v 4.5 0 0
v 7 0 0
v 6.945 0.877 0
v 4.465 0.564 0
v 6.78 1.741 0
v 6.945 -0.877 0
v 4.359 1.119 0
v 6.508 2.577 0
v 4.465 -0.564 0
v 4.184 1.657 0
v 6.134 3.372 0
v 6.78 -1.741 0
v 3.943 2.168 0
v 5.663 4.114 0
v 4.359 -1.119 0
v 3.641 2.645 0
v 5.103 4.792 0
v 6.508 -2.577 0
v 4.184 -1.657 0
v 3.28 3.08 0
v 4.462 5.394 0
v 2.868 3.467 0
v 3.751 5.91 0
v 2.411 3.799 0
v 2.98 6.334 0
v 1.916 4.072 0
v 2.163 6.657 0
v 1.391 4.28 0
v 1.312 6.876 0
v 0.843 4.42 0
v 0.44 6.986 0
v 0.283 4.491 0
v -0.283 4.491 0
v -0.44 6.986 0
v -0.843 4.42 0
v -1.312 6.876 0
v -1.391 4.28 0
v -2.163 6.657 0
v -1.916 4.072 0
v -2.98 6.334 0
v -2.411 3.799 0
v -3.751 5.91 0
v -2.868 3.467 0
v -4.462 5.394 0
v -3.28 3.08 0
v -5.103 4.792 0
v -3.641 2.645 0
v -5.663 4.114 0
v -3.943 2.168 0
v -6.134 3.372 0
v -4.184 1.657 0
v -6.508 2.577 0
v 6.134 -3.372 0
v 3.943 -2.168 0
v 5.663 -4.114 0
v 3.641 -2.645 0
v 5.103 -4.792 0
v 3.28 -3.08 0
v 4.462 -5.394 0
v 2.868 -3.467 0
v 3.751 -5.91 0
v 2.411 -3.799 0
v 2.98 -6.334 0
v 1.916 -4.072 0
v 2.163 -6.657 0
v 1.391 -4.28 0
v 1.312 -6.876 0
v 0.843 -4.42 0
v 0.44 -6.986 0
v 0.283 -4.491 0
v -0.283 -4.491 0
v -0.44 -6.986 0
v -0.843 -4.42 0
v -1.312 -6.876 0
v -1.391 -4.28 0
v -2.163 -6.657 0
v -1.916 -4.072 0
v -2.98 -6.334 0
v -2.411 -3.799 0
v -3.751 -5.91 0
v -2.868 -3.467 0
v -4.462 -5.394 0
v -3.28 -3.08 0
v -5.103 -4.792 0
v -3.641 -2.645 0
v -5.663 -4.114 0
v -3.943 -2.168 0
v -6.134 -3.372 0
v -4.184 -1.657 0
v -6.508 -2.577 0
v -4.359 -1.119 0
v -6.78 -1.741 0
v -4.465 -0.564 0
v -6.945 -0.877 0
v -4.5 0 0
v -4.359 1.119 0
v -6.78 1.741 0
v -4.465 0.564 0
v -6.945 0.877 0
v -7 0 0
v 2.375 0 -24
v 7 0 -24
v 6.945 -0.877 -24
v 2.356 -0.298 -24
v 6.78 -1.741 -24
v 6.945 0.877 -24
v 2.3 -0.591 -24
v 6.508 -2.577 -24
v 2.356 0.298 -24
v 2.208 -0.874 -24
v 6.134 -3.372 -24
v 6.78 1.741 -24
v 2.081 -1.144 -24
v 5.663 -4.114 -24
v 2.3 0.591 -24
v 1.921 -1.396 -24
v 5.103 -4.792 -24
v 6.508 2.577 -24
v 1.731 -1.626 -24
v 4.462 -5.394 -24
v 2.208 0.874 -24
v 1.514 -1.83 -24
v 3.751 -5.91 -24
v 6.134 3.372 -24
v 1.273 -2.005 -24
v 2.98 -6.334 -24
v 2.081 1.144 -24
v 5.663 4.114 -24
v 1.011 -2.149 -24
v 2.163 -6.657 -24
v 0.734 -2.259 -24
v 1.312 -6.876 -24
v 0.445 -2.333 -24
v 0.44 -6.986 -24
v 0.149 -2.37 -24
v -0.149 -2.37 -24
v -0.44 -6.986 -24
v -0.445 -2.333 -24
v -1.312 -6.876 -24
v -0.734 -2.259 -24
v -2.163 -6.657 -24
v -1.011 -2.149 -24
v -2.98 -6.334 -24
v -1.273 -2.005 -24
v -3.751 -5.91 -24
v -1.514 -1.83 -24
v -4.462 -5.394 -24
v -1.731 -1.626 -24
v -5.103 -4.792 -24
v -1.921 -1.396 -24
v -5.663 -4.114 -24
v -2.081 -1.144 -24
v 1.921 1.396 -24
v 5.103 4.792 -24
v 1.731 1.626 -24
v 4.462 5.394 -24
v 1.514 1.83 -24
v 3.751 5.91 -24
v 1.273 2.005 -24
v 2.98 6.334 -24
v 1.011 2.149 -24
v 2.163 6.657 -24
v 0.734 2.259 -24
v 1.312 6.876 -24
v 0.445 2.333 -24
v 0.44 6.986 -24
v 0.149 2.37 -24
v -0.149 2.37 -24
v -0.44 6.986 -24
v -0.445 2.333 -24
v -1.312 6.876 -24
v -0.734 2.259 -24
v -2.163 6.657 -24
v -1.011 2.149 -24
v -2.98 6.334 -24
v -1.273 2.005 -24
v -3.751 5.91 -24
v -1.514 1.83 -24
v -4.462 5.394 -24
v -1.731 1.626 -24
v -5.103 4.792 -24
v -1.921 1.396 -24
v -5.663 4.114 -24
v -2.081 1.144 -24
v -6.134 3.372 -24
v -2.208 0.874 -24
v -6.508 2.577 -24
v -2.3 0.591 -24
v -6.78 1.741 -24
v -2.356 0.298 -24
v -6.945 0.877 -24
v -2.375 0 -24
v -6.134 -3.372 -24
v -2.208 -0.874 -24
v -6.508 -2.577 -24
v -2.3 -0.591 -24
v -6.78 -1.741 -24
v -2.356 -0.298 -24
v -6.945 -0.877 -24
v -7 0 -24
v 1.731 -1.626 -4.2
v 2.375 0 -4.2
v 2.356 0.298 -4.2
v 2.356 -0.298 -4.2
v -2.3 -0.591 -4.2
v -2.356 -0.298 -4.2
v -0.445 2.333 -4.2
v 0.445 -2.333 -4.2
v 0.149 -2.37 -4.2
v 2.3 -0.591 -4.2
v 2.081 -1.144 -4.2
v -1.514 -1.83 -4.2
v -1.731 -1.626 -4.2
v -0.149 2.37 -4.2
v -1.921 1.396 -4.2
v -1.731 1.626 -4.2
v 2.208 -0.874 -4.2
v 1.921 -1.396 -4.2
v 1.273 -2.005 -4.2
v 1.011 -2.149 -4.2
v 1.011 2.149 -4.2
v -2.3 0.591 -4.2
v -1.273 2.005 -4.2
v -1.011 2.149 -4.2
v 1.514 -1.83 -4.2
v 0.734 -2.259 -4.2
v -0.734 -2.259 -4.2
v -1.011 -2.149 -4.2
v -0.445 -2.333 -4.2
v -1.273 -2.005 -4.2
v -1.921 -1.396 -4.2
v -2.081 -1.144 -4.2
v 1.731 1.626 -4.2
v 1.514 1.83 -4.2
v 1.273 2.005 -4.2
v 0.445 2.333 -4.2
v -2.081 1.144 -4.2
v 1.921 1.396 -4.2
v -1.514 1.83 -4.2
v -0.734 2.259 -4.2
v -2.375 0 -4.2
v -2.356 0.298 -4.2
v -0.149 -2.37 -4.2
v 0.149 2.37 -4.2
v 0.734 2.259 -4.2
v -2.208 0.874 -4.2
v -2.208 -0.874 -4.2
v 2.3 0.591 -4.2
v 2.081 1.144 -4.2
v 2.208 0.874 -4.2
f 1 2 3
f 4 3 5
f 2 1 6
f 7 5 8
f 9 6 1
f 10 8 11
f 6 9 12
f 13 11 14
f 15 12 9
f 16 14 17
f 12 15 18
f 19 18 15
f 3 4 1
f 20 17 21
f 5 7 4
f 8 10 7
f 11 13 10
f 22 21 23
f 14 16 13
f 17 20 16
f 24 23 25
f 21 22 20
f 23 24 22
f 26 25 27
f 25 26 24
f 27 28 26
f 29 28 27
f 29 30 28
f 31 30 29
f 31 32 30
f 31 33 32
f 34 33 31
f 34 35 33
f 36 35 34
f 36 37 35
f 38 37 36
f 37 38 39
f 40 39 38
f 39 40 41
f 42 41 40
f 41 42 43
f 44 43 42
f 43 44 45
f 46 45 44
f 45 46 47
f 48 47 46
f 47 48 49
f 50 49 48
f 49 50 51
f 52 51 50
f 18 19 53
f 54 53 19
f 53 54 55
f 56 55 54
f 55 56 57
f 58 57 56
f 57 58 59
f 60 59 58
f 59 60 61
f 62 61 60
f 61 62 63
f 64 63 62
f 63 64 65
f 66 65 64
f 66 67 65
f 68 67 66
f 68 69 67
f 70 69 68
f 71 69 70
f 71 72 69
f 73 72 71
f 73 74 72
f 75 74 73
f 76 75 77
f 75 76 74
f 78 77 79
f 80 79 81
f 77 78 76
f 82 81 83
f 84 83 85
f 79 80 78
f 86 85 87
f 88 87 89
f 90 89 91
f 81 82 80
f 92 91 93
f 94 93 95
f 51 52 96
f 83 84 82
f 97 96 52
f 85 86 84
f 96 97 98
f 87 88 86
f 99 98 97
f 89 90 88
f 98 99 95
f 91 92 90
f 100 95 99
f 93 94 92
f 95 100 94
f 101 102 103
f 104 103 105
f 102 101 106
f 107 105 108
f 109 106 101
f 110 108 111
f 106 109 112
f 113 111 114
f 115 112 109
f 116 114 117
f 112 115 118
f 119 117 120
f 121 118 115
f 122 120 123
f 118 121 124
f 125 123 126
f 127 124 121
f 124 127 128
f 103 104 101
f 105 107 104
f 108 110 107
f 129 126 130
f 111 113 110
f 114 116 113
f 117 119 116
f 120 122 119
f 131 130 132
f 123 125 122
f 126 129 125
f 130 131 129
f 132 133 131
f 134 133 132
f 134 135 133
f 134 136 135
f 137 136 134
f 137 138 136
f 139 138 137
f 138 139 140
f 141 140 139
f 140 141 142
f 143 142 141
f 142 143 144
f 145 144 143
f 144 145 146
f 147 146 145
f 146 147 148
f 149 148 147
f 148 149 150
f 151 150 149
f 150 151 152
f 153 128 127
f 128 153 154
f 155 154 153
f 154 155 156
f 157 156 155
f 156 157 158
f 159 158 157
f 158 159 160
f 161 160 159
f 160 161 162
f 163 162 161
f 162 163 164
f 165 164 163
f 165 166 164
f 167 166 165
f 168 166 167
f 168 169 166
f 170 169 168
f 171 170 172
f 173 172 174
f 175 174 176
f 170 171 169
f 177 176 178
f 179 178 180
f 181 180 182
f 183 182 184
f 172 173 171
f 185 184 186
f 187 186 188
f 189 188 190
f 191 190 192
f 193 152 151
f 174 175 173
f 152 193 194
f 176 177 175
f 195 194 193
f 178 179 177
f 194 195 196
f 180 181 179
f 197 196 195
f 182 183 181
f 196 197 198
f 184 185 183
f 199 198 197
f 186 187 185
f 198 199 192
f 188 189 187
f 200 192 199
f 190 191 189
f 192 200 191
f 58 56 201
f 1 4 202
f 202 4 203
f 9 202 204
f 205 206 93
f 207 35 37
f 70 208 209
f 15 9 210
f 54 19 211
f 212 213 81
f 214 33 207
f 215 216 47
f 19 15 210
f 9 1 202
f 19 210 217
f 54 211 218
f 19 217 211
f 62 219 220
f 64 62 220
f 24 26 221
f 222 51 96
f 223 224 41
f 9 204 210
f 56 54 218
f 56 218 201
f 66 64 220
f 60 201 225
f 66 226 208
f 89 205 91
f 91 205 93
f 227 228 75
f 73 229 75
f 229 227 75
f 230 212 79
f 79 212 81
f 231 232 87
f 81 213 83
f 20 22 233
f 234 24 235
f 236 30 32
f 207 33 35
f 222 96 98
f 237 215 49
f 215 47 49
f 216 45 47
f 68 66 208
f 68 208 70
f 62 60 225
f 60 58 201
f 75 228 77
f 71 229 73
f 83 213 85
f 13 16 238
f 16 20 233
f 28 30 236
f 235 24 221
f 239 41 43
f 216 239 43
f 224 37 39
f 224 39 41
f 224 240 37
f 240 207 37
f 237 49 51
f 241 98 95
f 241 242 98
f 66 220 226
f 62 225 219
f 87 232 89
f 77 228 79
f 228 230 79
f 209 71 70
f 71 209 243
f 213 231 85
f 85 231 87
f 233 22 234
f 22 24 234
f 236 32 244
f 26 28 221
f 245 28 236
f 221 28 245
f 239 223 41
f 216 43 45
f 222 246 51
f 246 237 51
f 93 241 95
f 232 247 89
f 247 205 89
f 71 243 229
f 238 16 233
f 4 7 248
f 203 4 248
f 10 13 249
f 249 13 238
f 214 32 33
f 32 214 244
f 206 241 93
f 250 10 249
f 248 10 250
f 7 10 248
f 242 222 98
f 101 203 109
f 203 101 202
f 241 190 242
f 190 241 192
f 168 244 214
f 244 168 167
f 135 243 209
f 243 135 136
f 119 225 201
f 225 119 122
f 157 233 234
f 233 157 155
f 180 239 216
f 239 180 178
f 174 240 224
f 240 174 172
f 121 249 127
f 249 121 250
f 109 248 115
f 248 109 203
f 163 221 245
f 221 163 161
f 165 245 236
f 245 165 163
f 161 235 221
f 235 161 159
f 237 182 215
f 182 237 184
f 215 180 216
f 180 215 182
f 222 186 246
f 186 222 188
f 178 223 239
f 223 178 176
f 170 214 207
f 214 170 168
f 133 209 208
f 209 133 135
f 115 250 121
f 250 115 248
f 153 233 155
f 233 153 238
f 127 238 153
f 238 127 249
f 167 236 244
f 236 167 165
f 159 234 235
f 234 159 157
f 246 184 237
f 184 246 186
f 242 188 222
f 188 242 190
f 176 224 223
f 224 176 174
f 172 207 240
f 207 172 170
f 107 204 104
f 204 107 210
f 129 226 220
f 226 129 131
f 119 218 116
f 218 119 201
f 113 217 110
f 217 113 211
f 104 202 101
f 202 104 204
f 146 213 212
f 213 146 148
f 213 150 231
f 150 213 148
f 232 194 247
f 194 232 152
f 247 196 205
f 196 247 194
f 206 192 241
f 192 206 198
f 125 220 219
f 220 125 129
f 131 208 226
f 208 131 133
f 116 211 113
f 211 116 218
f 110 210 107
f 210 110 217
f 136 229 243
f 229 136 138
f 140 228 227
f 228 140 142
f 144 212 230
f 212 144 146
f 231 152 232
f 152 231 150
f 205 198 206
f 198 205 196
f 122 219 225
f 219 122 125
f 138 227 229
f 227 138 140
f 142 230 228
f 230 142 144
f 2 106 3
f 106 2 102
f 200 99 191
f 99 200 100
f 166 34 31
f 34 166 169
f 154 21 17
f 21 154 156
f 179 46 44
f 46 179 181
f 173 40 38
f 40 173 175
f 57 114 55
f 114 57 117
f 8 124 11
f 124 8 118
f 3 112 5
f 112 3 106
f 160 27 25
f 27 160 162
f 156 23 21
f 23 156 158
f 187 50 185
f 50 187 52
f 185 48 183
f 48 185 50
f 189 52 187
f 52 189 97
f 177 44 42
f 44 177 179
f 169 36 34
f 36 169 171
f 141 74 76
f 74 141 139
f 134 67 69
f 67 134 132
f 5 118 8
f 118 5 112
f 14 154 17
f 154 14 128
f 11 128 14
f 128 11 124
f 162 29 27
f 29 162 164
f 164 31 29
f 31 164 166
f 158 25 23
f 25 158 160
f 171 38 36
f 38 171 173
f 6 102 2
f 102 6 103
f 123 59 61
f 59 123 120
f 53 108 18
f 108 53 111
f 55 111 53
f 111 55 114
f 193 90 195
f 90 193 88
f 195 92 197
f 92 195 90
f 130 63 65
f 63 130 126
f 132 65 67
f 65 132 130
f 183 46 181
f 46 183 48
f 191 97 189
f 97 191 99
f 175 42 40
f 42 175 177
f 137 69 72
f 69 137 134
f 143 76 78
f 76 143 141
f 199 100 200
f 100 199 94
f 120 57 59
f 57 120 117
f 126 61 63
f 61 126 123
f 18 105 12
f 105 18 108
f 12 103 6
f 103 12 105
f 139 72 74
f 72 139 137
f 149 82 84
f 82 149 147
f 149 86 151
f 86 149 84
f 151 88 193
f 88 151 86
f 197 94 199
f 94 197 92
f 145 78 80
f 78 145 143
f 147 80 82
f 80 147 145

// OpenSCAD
$fn = 50;


difference() {
	union() {
		translate(v = [0, 0, -24.0000000000]) {
			cylinder(h = 24, r = 7.0000000000);
		}
		cylinder(h = 0, r = 10.0000000000);
	}
	union() {
		translate(v = [0, 0, 0]) {
			rotate(a = [0, 0, 0]) {
				difference() {
					union() {
						#translate(v = [0, 0, -24.0000000000]) {
							cylinder(h = 24, r = 2.2500000000);
						}
						#translate(v = [0, 0, -4.2000000000]) {
							cylinder(h = 4.2000000000, r = 7.0000000000, r1 = 2.3750000000, r2 = 4.5000000000);
						}
						#translate(v = [0, 0, -24.0000000000]) {
							cylinder(h = 24, r = 2.3750000000);
						}
						#translate(v = [0, 0, -24.0000000000]) {
							cylinder(h = 24, r = 2.2500000000);
						}
					}
					union();
				}
			}
		}
	}
}
